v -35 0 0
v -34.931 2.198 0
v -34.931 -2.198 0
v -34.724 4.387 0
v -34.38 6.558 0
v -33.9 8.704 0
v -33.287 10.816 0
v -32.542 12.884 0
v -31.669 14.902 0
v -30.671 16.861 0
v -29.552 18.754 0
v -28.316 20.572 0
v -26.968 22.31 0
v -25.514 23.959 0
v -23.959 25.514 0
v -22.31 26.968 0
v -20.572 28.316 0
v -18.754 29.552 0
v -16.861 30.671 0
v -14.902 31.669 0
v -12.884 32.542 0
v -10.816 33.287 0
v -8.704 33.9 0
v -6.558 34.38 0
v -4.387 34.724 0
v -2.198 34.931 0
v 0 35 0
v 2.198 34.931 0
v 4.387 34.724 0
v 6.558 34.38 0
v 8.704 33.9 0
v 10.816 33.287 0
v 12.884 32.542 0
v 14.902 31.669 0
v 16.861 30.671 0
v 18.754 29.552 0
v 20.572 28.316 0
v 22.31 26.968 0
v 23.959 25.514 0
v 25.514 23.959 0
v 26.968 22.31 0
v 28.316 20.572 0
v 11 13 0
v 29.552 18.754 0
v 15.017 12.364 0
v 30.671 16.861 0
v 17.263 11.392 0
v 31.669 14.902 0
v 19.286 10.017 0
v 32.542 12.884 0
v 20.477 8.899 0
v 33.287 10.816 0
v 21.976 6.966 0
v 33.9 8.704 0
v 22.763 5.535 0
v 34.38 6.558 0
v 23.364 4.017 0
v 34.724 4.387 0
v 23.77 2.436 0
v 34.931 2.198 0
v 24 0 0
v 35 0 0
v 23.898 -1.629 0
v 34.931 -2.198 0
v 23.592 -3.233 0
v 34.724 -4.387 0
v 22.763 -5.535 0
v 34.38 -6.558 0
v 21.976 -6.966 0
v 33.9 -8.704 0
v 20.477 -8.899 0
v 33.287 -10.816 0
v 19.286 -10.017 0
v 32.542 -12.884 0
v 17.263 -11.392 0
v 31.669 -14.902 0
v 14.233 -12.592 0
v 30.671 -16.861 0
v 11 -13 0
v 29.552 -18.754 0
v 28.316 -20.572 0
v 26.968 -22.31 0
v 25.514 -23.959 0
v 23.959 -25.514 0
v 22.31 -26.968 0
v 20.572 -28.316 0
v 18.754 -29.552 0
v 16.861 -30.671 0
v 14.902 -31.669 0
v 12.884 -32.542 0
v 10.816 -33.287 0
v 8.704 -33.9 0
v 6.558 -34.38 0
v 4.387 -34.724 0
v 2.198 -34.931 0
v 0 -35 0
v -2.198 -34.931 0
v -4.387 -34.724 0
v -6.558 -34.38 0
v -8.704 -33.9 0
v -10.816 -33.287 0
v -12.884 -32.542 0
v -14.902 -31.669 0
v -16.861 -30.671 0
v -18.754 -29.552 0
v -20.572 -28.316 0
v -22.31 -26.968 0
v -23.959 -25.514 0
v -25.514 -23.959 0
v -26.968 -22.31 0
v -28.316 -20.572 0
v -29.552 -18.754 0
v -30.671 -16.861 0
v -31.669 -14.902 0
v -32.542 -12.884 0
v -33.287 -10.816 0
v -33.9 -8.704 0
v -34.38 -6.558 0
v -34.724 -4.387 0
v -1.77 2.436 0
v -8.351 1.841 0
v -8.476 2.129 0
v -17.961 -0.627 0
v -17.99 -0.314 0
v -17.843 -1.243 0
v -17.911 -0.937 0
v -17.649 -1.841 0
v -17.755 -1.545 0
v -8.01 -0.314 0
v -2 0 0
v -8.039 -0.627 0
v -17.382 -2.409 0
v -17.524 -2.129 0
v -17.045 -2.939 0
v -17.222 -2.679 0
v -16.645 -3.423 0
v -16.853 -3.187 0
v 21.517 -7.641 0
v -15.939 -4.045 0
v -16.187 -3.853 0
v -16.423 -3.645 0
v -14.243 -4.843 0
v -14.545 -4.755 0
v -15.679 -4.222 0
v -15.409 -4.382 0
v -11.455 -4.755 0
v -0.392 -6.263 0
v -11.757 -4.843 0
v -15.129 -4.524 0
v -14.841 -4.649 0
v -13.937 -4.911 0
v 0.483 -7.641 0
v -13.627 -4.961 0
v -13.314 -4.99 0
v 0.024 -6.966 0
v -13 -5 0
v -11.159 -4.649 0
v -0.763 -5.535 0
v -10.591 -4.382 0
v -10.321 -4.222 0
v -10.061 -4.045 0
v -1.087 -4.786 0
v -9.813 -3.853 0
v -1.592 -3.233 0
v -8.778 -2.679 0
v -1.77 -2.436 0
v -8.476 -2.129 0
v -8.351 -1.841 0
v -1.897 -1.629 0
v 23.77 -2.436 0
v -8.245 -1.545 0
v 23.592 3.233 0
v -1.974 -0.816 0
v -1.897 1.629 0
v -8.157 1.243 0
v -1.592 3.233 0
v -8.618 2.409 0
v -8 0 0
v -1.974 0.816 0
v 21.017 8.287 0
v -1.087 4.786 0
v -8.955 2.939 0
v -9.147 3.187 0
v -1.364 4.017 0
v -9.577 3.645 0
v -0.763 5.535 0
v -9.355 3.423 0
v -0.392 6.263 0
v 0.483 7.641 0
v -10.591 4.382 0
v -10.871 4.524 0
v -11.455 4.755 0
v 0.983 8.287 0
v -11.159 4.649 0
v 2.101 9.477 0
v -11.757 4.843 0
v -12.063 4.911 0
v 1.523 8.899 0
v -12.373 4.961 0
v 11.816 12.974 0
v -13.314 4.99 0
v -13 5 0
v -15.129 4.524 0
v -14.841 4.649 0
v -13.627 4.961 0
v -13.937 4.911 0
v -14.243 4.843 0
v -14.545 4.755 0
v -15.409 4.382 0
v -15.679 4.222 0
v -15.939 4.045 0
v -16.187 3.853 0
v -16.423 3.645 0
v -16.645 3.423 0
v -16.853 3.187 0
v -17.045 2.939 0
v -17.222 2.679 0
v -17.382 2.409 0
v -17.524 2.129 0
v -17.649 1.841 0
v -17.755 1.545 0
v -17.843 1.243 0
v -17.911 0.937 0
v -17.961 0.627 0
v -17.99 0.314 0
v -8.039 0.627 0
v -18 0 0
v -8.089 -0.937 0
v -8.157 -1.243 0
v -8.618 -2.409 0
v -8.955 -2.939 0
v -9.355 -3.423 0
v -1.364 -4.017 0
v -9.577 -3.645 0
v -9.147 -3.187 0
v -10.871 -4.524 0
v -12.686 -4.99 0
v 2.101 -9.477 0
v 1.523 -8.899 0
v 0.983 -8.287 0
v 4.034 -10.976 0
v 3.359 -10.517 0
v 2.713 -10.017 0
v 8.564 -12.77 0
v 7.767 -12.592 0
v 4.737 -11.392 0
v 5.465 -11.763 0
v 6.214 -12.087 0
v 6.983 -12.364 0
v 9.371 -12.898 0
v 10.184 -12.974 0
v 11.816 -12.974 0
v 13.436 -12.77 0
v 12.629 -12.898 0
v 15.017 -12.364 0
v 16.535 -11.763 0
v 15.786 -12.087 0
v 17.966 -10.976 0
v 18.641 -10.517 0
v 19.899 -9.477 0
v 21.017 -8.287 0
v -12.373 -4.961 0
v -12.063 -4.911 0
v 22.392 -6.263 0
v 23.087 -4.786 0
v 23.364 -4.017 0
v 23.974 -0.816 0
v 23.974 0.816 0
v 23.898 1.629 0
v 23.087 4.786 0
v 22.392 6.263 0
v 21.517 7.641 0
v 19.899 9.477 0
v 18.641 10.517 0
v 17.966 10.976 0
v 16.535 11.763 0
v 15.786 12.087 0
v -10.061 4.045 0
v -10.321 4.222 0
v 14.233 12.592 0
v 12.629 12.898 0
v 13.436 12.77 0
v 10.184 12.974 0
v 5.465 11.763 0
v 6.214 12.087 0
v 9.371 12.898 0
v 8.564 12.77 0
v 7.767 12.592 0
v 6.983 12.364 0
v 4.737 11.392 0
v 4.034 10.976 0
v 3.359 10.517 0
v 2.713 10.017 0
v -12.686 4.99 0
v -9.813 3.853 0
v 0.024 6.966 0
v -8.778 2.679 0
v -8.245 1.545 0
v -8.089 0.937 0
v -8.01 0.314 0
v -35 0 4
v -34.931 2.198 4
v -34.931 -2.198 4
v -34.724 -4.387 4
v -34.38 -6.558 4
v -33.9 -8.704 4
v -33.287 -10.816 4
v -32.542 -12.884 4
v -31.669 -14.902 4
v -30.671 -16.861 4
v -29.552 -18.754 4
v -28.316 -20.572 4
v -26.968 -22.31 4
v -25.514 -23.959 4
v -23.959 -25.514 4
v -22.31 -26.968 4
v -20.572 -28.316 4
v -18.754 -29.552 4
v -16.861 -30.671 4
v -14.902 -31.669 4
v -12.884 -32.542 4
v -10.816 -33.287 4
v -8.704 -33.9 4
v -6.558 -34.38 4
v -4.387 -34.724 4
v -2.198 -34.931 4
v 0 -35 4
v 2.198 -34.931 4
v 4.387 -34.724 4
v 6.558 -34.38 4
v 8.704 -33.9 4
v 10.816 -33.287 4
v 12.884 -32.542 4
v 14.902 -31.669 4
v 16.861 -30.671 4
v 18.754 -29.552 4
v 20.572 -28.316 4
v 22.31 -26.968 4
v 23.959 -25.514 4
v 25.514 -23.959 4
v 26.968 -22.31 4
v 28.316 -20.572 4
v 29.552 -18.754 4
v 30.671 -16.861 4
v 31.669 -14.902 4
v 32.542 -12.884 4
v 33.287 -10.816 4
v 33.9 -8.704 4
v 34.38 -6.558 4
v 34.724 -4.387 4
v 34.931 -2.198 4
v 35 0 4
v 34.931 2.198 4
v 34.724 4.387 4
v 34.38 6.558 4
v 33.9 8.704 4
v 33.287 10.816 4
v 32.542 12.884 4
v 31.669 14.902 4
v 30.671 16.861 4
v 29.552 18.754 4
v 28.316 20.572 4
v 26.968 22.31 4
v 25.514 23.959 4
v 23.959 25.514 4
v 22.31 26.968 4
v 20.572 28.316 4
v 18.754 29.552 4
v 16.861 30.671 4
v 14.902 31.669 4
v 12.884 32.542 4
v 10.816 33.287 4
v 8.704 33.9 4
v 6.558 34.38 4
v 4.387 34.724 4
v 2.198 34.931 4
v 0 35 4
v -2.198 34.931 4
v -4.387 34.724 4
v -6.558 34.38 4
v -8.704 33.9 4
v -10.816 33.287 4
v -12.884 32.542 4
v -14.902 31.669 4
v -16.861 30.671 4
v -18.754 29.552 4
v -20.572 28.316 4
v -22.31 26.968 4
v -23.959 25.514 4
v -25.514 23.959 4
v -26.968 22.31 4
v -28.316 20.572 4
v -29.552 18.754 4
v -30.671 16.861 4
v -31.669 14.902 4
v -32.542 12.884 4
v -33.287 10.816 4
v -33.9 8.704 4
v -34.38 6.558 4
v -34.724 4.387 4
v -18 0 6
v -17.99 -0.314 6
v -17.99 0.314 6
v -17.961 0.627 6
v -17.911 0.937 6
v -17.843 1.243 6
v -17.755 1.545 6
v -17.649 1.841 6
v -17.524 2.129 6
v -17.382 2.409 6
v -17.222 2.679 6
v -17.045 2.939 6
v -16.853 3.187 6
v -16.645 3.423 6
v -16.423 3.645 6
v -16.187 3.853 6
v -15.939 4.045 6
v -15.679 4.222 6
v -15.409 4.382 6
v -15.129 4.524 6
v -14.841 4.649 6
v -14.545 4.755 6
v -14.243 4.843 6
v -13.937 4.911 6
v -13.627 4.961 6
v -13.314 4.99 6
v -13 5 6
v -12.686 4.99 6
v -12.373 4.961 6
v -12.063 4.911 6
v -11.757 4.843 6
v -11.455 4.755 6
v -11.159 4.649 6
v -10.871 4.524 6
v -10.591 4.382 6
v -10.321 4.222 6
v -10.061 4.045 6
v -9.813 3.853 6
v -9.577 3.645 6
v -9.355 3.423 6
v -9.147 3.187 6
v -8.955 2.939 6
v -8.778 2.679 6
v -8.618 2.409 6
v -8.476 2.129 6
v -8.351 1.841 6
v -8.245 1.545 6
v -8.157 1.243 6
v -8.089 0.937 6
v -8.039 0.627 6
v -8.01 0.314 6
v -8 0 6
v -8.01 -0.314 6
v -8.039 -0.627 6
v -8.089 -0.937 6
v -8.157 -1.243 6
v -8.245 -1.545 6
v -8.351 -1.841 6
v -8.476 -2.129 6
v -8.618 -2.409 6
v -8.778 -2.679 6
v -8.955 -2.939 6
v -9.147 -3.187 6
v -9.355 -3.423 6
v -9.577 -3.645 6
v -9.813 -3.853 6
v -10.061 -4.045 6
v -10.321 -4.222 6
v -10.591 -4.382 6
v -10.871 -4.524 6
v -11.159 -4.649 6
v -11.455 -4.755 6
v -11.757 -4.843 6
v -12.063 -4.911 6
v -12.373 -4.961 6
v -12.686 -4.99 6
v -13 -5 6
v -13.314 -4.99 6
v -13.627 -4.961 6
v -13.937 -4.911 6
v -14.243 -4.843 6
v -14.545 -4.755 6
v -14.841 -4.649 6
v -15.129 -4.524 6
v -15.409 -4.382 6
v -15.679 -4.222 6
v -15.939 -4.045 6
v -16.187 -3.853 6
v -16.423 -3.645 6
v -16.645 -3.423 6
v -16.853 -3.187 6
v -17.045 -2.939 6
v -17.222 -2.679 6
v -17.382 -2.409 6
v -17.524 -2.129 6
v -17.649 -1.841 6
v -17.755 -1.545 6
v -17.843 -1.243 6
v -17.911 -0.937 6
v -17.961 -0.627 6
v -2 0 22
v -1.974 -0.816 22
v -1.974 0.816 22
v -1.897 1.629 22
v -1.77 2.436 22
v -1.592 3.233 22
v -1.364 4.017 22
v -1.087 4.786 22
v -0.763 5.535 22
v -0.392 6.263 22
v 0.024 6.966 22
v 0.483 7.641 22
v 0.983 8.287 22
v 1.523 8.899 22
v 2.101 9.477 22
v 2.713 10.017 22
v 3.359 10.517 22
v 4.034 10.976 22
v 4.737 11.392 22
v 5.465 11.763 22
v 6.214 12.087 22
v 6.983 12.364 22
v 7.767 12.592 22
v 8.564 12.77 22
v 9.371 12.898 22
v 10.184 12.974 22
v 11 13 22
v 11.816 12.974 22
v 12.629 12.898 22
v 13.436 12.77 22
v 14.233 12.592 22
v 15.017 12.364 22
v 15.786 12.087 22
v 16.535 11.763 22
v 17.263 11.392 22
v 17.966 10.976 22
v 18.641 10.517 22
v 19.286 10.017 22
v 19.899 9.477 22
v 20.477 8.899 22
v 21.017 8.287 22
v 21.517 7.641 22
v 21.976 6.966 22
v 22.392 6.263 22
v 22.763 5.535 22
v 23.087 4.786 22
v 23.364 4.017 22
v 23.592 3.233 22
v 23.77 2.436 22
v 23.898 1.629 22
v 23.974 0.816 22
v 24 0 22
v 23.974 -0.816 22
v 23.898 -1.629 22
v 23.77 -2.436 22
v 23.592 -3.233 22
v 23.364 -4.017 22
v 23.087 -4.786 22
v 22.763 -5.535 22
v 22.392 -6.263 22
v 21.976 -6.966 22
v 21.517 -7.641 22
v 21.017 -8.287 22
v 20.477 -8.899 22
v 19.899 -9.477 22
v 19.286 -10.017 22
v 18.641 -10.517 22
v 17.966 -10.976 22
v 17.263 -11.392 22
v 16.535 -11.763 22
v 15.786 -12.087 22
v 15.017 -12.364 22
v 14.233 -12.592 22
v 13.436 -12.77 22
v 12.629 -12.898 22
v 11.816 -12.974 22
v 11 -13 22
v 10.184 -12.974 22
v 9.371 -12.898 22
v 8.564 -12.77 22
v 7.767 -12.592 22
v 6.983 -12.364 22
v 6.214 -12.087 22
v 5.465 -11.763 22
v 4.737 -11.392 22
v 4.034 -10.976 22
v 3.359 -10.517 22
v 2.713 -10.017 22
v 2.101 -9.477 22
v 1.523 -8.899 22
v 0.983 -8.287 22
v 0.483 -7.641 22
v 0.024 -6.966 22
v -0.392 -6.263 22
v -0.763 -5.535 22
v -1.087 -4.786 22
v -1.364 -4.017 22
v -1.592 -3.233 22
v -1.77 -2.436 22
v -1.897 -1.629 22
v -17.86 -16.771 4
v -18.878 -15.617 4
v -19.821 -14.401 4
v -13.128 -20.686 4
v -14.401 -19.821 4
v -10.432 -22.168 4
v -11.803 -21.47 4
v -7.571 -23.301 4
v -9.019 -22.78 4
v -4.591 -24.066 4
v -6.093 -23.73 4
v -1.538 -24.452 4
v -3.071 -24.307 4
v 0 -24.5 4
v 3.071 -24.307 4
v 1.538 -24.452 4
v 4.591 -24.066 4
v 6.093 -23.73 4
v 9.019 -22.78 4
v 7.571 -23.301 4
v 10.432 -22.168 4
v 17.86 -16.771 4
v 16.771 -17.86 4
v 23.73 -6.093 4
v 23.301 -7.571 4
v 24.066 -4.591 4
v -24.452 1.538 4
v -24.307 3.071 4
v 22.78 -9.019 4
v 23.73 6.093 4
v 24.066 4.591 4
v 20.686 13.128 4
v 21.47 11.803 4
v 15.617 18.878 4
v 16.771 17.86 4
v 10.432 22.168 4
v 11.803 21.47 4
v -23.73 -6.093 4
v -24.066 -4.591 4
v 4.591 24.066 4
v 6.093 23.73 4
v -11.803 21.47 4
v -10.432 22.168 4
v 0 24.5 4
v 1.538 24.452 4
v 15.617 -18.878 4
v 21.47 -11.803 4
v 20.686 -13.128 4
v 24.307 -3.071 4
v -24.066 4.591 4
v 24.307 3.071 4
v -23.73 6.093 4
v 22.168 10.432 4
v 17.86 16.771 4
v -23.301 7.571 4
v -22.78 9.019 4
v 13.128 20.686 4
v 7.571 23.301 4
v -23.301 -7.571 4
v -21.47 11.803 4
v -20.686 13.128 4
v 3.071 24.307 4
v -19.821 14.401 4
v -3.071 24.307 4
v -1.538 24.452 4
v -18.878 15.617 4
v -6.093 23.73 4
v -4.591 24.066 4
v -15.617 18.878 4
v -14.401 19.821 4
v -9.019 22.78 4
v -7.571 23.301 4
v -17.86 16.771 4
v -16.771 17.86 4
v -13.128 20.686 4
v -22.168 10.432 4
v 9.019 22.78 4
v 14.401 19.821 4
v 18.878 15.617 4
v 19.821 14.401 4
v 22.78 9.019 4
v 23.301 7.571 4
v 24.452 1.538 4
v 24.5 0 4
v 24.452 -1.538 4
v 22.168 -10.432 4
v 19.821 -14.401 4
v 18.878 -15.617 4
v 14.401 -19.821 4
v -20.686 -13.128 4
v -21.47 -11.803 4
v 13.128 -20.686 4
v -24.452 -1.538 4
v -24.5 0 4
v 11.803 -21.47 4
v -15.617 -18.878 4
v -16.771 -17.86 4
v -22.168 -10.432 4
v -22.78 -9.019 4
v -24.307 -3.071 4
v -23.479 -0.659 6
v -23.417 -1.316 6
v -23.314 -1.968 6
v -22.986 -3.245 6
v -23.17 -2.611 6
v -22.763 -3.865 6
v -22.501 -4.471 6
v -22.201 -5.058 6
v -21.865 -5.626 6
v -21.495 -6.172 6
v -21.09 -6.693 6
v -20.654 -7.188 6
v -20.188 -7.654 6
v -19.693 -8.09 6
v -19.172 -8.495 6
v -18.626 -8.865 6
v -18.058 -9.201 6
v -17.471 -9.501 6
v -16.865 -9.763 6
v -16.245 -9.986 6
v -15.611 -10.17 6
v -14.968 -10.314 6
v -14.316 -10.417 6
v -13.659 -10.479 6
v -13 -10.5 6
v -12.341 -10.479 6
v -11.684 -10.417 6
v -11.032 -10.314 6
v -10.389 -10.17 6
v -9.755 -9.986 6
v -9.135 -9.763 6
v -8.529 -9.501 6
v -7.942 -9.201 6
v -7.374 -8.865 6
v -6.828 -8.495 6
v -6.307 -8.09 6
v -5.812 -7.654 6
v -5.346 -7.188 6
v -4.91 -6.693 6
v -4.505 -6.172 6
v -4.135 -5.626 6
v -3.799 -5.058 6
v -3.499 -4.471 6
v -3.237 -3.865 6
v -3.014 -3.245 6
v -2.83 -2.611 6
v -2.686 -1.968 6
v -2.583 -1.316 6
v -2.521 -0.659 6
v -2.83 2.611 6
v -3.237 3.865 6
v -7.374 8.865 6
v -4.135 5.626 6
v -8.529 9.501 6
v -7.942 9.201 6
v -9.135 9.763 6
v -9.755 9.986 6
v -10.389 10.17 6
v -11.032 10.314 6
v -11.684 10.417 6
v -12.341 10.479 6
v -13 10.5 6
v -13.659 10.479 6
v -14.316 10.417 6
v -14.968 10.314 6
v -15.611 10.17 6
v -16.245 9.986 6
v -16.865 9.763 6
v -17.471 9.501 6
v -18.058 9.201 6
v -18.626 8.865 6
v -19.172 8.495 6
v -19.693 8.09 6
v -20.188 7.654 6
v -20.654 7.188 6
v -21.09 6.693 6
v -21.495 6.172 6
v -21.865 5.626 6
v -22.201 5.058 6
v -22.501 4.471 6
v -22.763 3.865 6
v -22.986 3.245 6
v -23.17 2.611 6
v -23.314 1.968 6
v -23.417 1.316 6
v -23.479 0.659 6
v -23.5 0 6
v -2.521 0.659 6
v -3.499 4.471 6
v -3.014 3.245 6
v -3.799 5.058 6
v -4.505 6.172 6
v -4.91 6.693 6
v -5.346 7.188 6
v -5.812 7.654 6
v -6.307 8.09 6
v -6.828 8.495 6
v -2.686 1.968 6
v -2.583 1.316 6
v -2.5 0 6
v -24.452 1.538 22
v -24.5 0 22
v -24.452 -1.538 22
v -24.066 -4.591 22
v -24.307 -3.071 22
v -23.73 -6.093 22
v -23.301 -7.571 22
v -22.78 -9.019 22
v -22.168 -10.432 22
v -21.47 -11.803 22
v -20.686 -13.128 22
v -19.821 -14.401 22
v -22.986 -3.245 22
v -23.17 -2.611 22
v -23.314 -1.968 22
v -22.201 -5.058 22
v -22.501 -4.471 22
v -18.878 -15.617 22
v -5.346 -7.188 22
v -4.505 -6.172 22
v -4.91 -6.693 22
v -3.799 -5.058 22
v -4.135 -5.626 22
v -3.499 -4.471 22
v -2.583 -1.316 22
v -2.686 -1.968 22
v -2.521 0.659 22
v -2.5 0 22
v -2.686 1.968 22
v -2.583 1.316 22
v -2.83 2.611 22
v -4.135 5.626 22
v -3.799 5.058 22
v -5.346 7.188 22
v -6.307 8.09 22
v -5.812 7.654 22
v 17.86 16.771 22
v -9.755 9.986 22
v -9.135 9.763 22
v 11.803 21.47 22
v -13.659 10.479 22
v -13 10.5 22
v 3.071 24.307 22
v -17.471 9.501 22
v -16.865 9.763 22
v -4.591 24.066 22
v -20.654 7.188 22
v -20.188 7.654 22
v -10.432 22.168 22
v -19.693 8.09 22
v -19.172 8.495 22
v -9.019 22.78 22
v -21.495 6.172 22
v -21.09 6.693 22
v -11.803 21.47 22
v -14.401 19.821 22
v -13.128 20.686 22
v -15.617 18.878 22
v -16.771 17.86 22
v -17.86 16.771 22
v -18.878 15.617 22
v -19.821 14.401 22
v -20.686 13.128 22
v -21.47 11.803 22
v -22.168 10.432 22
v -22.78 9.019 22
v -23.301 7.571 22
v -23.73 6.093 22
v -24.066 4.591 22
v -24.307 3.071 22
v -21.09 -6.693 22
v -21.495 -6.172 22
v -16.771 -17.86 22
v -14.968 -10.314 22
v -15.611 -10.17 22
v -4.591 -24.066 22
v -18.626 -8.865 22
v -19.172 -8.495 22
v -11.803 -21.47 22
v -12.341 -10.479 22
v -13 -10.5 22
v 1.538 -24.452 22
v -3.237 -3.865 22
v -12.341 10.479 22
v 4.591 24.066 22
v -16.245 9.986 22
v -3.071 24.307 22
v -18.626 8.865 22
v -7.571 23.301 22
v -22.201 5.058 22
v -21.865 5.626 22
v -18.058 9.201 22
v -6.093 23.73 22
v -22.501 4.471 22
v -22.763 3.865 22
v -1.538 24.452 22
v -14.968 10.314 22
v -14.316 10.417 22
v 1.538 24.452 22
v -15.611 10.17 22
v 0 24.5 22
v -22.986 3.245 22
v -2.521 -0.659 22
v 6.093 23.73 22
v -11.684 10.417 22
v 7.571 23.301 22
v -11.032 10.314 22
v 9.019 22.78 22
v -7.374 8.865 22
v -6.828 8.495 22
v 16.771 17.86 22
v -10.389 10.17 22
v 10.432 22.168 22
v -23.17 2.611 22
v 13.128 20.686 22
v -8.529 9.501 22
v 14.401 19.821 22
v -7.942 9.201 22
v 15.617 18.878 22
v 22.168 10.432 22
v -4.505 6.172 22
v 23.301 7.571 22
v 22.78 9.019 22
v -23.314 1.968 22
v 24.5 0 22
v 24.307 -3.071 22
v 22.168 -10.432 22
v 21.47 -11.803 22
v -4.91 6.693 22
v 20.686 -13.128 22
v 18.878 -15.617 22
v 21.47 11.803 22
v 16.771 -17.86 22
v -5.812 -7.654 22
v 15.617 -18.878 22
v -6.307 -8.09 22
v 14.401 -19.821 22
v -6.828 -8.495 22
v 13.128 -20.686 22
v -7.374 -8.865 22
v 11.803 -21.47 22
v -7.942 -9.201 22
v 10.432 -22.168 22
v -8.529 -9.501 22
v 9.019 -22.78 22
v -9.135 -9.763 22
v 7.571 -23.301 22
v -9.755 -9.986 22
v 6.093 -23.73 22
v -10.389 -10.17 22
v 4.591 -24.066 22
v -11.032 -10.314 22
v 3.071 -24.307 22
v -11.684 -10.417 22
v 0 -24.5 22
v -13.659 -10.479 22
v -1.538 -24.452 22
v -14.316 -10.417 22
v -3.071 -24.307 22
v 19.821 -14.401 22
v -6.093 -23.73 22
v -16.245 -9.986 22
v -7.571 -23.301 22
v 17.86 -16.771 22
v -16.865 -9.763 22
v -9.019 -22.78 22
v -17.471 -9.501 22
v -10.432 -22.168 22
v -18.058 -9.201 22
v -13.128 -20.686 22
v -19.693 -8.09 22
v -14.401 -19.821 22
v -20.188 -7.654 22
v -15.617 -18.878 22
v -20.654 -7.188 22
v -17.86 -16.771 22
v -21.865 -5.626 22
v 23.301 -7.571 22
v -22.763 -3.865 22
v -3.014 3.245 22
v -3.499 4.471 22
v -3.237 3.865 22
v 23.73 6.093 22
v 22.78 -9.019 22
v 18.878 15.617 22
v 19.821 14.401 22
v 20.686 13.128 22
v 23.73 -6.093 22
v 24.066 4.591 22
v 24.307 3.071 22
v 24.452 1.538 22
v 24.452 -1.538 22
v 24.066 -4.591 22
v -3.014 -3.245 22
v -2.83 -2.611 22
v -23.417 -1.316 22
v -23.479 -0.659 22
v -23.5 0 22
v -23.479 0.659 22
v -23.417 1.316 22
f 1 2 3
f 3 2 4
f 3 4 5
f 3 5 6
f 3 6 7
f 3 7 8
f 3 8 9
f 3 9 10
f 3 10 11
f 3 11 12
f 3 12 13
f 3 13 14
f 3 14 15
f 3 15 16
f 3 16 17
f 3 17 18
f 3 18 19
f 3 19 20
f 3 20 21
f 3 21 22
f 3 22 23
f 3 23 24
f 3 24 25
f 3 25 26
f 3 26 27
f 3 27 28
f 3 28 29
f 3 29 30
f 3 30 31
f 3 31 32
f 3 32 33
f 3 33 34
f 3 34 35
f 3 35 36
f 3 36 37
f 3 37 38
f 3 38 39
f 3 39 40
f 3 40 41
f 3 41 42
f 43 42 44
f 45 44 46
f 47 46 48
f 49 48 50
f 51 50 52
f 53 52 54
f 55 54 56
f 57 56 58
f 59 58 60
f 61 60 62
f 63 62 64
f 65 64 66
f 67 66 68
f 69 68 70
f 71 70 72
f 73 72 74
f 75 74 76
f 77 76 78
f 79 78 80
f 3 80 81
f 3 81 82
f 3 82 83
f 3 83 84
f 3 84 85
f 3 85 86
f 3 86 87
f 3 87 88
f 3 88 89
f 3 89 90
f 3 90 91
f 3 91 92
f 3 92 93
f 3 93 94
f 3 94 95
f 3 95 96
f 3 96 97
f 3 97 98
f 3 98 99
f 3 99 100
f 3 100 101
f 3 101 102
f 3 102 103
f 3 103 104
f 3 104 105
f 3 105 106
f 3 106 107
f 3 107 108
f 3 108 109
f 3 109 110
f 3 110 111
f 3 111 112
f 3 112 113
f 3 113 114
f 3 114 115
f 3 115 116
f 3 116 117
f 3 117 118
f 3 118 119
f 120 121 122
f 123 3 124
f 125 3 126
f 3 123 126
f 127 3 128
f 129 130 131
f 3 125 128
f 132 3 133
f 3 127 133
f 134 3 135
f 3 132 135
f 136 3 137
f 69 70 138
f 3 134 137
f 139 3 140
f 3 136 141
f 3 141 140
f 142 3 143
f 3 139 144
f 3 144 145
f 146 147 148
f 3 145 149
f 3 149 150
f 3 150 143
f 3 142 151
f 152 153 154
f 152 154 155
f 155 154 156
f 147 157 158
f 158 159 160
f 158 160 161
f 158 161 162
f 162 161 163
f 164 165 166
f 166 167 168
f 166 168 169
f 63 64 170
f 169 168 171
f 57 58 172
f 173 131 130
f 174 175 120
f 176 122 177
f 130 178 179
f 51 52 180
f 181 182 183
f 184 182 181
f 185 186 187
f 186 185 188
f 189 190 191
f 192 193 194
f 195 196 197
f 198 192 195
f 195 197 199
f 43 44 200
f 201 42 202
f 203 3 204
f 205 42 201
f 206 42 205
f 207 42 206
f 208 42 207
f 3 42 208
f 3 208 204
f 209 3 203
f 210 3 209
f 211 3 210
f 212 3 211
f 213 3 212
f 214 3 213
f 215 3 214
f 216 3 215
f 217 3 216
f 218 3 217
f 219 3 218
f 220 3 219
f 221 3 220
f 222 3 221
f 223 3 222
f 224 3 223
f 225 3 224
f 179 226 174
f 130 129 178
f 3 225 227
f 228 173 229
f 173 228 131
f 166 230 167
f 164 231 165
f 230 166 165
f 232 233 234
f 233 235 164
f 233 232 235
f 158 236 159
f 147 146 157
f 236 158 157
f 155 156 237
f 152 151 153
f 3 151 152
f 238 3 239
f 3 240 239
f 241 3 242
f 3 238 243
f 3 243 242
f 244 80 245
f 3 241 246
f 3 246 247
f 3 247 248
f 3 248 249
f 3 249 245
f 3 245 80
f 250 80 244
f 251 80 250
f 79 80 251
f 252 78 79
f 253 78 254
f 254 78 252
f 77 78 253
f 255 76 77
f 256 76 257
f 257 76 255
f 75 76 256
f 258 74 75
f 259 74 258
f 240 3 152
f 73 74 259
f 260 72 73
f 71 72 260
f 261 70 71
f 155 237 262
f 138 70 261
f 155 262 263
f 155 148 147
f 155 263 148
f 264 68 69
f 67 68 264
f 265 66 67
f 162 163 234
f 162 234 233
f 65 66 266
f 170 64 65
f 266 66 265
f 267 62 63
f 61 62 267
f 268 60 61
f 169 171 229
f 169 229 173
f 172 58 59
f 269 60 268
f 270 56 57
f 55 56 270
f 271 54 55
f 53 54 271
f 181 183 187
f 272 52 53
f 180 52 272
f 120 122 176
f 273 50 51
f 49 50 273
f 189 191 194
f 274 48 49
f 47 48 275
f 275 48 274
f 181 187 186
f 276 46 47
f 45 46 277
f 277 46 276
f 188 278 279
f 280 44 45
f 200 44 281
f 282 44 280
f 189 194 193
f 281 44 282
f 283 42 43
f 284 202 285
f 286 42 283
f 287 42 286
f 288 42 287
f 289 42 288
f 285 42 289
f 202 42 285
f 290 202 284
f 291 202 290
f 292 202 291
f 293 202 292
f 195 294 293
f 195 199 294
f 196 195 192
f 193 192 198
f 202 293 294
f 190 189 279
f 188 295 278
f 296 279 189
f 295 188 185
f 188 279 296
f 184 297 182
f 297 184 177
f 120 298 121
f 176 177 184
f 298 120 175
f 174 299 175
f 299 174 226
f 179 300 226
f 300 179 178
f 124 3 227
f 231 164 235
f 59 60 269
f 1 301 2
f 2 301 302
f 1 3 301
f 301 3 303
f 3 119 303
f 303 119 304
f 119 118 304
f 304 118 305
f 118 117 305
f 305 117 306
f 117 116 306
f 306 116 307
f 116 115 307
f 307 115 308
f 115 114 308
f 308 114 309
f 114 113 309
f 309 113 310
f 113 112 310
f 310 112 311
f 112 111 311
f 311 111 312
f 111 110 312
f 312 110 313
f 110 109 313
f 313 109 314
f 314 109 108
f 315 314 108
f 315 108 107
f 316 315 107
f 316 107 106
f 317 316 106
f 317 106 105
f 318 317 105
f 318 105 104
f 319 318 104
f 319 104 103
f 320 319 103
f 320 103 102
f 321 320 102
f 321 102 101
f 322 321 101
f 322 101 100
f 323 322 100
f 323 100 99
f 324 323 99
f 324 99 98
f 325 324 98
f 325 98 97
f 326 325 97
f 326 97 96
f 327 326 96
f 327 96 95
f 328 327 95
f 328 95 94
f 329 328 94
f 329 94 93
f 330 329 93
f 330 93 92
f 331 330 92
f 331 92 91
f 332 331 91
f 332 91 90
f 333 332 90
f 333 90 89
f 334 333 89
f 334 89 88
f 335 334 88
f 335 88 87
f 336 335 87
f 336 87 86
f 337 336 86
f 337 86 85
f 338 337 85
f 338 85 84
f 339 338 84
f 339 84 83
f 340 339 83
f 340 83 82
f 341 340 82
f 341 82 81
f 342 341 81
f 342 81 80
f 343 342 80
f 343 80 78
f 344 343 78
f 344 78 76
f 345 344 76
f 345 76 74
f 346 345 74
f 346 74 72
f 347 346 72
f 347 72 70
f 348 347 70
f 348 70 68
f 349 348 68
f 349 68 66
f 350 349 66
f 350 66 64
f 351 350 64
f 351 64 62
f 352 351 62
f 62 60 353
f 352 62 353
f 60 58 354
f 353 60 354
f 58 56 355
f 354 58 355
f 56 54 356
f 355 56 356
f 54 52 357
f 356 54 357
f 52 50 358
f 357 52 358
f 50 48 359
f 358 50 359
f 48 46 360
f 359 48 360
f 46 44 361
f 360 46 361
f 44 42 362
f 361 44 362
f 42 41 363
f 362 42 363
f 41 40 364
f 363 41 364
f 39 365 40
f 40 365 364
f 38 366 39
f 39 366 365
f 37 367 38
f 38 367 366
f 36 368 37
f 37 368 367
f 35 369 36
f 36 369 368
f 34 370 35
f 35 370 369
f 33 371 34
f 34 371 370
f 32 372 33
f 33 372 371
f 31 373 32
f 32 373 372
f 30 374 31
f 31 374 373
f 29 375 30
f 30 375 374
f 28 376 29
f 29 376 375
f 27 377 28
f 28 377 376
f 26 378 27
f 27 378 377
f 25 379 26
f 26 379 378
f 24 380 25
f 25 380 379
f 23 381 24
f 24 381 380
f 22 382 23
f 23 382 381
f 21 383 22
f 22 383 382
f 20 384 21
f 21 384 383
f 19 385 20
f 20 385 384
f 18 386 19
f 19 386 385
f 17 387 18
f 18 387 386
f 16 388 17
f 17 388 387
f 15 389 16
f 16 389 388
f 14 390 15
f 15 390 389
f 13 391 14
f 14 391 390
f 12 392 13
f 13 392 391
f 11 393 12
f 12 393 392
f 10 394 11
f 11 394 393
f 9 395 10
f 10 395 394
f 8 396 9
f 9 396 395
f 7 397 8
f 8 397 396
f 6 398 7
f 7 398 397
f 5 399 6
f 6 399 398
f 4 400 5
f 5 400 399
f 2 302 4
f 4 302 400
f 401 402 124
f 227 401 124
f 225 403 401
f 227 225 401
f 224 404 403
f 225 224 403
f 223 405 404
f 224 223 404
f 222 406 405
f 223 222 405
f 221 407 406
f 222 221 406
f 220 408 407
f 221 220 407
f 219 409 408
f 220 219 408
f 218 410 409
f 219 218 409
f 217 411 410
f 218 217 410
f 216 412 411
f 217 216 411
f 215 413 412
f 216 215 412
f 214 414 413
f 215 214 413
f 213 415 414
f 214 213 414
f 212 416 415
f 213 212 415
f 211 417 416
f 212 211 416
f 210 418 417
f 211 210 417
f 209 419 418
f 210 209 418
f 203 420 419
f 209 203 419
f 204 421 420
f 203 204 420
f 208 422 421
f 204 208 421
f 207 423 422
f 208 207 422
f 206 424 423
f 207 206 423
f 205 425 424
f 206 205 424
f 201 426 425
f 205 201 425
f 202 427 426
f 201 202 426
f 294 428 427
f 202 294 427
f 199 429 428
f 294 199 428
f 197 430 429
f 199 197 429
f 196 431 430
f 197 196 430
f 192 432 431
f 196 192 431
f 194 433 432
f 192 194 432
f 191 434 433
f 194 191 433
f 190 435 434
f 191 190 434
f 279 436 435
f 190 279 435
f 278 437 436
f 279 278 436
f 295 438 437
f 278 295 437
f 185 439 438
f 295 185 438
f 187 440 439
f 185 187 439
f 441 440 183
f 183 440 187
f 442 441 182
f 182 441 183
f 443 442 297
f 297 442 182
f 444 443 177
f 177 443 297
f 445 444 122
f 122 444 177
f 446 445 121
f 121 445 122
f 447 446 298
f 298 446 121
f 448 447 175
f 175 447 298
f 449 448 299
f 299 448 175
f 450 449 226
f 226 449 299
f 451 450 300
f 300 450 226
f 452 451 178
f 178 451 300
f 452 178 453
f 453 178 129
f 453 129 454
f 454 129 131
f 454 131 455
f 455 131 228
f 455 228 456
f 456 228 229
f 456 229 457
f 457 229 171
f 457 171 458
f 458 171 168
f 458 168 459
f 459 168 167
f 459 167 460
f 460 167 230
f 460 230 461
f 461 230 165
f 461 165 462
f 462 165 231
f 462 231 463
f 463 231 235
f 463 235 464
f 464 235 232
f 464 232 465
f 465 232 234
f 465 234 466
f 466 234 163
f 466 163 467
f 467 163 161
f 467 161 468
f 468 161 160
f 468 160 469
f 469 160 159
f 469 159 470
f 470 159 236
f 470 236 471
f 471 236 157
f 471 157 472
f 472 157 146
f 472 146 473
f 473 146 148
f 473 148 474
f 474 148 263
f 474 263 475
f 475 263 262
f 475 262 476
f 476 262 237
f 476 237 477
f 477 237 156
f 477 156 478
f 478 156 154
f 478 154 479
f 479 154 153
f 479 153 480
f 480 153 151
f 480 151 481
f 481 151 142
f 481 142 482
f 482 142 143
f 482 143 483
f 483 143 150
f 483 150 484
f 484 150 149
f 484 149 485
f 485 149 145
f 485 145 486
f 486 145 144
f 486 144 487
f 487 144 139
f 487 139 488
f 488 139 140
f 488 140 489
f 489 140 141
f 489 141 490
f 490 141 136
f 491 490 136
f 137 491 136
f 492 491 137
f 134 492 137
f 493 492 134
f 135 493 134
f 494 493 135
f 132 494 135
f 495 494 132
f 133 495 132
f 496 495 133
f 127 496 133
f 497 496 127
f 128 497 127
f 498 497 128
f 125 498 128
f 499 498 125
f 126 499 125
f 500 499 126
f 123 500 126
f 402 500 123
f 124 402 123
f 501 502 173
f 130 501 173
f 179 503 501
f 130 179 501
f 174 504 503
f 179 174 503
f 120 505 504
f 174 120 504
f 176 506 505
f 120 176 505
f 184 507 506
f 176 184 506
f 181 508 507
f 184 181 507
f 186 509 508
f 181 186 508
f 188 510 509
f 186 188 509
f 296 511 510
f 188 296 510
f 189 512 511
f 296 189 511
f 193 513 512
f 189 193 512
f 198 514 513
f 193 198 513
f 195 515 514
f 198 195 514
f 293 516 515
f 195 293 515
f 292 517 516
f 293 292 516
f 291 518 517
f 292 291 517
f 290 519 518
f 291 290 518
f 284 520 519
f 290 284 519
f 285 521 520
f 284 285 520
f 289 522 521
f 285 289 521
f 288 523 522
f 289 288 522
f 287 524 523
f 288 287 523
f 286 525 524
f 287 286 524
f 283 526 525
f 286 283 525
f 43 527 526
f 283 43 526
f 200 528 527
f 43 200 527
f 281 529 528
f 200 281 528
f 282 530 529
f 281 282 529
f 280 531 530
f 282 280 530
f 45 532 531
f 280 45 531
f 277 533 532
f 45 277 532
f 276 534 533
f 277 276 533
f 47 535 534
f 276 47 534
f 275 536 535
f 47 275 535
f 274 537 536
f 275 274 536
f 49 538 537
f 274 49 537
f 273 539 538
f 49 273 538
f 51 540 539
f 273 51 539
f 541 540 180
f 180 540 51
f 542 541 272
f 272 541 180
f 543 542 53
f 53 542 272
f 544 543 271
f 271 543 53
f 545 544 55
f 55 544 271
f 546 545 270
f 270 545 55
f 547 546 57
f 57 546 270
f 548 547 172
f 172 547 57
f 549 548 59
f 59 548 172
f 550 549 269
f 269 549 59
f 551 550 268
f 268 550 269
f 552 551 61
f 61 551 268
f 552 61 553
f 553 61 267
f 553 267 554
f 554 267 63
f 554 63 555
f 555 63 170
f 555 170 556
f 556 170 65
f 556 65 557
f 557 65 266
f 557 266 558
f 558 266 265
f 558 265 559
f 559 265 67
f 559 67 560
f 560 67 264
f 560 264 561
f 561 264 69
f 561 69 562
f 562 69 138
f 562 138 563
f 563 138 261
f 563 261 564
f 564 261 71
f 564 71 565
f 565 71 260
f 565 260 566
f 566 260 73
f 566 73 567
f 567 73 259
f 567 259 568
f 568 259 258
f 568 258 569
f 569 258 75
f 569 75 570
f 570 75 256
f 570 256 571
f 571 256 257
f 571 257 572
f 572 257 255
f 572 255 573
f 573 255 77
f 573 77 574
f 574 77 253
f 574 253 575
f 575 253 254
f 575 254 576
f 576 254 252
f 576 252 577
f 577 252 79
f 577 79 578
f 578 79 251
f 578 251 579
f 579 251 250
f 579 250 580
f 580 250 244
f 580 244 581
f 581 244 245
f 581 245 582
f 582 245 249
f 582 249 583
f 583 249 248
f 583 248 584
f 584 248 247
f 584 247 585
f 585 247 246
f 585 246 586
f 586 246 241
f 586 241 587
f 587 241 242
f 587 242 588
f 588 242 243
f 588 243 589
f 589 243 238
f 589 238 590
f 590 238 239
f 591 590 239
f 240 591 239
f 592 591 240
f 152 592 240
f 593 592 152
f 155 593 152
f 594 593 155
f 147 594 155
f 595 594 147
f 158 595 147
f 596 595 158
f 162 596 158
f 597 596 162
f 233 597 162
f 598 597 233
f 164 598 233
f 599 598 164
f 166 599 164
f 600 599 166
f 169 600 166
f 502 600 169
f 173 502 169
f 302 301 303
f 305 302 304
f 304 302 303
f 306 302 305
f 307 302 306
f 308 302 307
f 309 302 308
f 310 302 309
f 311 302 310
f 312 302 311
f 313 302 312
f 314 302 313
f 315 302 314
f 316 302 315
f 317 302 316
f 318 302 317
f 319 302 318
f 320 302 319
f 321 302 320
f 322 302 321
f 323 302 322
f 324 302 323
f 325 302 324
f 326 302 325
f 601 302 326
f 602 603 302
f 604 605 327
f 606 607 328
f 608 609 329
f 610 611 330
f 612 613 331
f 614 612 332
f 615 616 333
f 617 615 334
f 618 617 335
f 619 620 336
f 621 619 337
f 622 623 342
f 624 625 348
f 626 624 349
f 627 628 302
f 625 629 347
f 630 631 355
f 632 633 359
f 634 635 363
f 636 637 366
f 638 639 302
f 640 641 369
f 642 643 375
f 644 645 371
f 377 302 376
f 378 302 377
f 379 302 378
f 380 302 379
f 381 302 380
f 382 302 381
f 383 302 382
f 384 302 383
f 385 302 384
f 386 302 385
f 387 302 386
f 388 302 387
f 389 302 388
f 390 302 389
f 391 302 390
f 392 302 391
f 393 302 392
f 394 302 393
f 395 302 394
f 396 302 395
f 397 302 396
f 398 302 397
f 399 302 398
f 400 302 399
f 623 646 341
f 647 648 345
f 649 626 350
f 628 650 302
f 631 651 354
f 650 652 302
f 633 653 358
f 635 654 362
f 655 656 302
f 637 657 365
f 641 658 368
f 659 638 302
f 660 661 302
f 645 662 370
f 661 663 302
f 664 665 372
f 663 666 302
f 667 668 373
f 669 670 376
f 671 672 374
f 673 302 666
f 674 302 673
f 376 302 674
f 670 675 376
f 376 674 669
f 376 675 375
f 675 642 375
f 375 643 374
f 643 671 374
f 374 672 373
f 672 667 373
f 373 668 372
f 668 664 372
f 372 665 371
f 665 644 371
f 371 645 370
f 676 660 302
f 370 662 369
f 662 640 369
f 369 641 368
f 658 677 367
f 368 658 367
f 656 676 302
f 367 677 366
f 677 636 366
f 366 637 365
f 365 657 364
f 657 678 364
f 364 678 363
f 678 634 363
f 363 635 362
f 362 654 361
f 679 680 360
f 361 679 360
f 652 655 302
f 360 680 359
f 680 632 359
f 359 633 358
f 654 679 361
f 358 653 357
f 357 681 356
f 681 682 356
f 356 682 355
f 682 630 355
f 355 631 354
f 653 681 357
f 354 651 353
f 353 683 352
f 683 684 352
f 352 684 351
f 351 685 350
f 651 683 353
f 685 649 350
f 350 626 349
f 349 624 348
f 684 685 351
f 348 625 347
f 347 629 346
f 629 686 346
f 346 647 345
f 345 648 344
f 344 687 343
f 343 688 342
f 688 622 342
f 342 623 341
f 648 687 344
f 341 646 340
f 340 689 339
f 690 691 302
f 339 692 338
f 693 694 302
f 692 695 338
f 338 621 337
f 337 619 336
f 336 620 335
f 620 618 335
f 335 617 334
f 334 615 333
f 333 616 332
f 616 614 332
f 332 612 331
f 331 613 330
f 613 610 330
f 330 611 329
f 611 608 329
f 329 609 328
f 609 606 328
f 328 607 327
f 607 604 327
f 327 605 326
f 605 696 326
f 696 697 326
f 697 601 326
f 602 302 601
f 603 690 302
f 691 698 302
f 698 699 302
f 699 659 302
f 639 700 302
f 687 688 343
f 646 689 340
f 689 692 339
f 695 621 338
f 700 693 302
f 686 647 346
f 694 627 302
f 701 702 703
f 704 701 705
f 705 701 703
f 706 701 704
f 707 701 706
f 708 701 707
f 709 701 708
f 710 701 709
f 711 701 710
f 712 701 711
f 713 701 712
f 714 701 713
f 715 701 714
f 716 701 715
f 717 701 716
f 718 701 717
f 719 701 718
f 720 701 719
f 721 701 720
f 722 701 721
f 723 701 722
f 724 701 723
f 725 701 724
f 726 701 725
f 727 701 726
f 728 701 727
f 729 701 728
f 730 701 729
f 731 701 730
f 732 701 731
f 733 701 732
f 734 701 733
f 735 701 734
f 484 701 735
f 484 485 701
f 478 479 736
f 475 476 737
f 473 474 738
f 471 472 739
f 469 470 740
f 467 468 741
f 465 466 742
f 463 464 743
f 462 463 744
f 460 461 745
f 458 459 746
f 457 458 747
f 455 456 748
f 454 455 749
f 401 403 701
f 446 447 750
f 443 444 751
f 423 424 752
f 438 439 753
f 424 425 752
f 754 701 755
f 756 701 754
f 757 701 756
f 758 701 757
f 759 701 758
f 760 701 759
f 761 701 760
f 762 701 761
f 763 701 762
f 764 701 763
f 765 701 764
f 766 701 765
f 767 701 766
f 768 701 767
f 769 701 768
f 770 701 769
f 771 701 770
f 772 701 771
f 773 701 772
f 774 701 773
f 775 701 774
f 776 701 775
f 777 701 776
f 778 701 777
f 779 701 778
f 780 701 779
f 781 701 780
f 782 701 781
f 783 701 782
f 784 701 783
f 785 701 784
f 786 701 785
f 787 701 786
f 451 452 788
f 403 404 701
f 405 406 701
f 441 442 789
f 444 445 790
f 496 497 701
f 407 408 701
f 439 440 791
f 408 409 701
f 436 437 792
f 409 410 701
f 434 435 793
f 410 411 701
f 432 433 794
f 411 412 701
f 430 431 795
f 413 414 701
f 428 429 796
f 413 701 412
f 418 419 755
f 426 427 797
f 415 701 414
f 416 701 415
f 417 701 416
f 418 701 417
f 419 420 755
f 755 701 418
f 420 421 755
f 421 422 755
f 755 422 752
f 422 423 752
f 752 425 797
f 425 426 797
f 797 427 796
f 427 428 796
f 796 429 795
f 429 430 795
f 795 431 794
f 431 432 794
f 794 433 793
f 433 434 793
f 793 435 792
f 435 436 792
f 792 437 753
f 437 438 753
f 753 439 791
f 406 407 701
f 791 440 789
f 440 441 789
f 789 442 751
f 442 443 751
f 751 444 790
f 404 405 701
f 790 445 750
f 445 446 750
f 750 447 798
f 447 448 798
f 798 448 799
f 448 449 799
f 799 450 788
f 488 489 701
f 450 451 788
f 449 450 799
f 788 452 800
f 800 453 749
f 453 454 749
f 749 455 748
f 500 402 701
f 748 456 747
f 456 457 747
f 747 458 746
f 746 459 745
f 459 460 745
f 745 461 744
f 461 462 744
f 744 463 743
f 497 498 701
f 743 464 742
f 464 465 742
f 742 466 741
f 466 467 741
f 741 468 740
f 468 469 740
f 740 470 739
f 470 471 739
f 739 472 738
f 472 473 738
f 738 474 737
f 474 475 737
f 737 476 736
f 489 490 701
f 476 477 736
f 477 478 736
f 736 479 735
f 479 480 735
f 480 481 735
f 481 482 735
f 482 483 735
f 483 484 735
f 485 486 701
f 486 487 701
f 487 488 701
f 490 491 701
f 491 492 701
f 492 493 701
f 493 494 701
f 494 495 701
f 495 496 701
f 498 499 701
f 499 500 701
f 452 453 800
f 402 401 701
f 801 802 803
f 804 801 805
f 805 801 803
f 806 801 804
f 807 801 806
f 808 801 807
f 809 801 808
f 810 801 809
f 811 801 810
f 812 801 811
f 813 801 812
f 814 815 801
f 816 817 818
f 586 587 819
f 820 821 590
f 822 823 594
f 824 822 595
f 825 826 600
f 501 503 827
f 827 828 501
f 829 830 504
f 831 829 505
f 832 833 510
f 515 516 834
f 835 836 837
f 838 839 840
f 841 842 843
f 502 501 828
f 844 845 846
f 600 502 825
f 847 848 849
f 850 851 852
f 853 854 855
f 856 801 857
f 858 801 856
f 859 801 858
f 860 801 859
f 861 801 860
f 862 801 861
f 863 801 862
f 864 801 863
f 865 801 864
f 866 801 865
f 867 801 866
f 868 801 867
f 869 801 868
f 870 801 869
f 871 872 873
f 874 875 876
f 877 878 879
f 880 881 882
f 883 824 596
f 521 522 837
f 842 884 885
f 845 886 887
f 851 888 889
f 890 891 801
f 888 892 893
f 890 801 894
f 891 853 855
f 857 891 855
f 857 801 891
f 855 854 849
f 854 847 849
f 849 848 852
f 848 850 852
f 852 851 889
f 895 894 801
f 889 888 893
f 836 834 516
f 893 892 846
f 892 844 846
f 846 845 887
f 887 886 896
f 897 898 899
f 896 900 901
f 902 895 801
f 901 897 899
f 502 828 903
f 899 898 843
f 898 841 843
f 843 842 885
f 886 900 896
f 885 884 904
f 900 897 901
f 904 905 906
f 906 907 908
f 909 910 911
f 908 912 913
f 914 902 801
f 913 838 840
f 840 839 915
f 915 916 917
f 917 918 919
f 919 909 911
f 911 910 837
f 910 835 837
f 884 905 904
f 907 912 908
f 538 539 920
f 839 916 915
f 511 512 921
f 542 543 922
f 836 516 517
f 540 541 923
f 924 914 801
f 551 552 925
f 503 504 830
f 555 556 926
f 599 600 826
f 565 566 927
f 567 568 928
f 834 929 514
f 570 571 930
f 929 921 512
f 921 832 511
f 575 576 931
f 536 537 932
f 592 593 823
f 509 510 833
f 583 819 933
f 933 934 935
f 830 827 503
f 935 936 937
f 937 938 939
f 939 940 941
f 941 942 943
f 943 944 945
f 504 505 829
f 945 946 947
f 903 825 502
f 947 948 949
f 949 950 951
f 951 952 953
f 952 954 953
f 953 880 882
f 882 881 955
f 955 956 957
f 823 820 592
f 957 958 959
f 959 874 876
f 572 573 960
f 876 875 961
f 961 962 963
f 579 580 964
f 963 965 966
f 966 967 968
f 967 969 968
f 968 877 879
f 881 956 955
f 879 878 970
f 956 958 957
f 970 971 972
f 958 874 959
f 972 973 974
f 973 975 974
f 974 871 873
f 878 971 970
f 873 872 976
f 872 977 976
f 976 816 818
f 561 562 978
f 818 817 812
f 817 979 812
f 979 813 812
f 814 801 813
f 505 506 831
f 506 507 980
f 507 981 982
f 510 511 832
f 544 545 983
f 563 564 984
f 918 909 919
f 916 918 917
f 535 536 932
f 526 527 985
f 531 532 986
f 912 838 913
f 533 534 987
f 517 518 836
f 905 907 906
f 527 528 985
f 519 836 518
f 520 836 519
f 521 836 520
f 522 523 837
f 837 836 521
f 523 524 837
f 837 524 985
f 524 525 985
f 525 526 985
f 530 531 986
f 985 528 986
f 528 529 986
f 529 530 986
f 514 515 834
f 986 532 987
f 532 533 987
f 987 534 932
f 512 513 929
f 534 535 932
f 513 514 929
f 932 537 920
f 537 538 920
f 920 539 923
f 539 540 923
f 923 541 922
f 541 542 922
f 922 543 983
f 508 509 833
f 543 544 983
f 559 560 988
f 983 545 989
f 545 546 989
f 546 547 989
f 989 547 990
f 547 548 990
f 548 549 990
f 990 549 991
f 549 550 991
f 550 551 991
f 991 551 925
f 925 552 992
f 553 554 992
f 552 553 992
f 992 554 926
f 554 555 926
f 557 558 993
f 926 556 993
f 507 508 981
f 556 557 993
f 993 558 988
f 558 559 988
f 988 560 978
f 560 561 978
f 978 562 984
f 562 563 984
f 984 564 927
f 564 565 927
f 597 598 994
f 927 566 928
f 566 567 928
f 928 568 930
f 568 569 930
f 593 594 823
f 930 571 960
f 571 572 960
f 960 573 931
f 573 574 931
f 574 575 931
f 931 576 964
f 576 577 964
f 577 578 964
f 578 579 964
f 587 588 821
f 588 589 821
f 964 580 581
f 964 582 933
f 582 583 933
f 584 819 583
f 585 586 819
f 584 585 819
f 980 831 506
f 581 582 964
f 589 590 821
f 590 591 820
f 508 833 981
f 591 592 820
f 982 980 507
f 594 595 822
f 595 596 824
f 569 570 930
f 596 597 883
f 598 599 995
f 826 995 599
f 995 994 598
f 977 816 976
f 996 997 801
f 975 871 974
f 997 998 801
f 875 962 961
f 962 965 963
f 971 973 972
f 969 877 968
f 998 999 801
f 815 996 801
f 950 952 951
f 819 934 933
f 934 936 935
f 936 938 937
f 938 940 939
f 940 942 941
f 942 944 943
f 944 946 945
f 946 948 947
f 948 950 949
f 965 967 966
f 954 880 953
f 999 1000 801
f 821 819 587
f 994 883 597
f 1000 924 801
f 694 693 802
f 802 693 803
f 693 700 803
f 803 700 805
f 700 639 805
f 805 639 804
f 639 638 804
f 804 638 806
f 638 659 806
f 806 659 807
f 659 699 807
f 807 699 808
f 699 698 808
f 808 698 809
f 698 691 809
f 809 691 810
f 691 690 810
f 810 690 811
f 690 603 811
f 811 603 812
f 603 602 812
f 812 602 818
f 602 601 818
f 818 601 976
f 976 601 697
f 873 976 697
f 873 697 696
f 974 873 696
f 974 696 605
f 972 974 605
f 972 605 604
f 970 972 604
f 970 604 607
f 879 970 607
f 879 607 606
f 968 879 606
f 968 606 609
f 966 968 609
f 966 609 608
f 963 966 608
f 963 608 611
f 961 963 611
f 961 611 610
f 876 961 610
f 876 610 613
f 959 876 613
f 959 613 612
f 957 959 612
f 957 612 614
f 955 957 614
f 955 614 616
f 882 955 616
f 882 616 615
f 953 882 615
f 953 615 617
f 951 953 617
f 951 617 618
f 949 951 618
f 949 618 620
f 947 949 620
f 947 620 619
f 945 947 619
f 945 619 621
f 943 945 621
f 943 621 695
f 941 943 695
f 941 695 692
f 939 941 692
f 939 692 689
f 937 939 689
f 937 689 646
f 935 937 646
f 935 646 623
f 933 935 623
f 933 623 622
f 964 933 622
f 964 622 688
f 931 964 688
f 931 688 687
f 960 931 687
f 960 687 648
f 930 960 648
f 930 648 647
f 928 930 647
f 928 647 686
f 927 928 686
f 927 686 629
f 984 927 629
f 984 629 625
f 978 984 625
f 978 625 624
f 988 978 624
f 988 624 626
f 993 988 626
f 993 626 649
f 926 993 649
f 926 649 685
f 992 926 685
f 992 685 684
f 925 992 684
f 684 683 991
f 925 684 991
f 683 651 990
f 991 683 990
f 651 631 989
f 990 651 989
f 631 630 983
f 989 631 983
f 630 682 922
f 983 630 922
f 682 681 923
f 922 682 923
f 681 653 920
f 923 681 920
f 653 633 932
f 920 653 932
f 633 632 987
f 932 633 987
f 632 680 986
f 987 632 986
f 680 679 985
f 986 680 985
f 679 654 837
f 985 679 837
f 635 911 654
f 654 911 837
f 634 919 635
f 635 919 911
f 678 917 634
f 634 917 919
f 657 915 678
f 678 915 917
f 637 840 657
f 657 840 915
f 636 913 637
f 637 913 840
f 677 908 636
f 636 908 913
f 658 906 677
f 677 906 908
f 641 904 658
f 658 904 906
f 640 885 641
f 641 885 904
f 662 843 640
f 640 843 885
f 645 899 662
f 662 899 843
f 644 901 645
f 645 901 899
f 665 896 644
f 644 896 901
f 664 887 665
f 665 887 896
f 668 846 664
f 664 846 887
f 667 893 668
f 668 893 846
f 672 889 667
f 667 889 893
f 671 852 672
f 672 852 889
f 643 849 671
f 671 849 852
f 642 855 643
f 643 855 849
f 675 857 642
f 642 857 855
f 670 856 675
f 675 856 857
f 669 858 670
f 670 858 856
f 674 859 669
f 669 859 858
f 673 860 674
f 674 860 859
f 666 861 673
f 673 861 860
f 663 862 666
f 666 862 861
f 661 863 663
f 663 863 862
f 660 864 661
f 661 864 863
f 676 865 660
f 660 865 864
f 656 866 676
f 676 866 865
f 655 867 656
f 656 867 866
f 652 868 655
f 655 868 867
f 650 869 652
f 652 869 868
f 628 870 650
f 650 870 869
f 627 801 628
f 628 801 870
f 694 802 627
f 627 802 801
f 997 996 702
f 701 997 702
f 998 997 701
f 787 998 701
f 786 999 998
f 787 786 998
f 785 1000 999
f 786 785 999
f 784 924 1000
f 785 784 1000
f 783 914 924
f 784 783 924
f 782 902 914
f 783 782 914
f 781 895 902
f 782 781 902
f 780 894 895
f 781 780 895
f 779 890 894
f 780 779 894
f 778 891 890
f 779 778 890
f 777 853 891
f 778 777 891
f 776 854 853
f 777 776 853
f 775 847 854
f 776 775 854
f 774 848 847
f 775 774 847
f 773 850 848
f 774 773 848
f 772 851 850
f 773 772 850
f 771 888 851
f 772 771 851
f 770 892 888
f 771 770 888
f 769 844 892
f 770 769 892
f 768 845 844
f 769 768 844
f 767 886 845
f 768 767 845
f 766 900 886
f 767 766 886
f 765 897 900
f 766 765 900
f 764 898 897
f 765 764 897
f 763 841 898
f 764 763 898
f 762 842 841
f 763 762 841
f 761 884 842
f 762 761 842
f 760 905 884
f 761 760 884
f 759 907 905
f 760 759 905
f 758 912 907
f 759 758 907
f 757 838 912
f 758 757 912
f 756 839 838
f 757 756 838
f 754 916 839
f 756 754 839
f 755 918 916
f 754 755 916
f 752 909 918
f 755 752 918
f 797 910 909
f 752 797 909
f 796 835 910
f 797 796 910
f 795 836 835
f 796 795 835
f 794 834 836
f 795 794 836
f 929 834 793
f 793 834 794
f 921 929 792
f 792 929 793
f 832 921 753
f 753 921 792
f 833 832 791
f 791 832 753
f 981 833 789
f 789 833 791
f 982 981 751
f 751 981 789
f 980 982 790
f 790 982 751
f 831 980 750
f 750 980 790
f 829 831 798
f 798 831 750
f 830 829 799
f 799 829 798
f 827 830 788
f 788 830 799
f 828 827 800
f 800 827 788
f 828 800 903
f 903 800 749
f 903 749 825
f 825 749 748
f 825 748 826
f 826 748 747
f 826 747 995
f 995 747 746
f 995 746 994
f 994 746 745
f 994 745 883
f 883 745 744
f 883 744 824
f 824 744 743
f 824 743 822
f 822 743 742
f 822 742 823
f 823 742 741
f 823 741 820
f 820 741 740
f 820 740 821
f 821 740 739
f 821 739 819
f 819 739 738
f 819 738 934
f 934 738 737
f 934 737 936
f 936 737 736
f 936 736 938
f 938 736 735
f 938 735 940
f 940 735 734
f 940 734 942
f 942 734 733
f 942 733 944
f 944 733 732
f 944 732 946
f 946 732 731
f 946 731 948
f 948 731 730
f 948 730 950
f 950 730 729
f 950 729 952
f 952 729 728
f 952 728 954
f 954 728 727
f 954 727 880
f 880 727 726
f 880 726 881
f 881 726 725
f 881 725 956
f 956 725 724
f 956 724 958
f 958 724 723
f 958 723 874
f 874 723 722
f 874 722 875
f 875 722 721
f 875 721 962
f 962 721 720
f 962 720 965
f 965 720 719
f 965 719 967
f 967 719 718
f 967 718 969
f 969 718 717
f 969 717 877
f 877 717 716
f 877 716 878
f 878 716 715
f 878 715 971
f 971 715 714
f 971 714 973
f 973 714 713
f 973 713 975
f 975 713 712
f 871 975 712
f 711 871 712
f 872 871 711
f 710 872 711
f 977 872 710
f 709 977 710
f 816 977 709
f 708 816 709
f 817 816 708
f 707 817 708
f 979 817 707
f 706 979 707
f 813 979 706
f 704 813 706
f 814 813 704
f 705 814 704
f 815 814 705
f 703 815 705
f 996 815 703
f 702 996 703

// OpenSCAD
myfn = 100;

render(convexity = 4) {
  difference() {
    union() {
      cylinder(h = 22, r=24.5, $fn=myfn);
      cylinder(h = 4, r=35, $fn=myfn);
    }
    union () {
      translate([11,0,0])
        cylinder(h = 22, d=26, $fn=myfn);
      translate([-13,0,6])
        cylinder(h = 22, d=21, $fn=myfn);
      translate([-13,0,0])
        cylinder(h = 6, d=10, $fn=myfn);
    }
  }
}
